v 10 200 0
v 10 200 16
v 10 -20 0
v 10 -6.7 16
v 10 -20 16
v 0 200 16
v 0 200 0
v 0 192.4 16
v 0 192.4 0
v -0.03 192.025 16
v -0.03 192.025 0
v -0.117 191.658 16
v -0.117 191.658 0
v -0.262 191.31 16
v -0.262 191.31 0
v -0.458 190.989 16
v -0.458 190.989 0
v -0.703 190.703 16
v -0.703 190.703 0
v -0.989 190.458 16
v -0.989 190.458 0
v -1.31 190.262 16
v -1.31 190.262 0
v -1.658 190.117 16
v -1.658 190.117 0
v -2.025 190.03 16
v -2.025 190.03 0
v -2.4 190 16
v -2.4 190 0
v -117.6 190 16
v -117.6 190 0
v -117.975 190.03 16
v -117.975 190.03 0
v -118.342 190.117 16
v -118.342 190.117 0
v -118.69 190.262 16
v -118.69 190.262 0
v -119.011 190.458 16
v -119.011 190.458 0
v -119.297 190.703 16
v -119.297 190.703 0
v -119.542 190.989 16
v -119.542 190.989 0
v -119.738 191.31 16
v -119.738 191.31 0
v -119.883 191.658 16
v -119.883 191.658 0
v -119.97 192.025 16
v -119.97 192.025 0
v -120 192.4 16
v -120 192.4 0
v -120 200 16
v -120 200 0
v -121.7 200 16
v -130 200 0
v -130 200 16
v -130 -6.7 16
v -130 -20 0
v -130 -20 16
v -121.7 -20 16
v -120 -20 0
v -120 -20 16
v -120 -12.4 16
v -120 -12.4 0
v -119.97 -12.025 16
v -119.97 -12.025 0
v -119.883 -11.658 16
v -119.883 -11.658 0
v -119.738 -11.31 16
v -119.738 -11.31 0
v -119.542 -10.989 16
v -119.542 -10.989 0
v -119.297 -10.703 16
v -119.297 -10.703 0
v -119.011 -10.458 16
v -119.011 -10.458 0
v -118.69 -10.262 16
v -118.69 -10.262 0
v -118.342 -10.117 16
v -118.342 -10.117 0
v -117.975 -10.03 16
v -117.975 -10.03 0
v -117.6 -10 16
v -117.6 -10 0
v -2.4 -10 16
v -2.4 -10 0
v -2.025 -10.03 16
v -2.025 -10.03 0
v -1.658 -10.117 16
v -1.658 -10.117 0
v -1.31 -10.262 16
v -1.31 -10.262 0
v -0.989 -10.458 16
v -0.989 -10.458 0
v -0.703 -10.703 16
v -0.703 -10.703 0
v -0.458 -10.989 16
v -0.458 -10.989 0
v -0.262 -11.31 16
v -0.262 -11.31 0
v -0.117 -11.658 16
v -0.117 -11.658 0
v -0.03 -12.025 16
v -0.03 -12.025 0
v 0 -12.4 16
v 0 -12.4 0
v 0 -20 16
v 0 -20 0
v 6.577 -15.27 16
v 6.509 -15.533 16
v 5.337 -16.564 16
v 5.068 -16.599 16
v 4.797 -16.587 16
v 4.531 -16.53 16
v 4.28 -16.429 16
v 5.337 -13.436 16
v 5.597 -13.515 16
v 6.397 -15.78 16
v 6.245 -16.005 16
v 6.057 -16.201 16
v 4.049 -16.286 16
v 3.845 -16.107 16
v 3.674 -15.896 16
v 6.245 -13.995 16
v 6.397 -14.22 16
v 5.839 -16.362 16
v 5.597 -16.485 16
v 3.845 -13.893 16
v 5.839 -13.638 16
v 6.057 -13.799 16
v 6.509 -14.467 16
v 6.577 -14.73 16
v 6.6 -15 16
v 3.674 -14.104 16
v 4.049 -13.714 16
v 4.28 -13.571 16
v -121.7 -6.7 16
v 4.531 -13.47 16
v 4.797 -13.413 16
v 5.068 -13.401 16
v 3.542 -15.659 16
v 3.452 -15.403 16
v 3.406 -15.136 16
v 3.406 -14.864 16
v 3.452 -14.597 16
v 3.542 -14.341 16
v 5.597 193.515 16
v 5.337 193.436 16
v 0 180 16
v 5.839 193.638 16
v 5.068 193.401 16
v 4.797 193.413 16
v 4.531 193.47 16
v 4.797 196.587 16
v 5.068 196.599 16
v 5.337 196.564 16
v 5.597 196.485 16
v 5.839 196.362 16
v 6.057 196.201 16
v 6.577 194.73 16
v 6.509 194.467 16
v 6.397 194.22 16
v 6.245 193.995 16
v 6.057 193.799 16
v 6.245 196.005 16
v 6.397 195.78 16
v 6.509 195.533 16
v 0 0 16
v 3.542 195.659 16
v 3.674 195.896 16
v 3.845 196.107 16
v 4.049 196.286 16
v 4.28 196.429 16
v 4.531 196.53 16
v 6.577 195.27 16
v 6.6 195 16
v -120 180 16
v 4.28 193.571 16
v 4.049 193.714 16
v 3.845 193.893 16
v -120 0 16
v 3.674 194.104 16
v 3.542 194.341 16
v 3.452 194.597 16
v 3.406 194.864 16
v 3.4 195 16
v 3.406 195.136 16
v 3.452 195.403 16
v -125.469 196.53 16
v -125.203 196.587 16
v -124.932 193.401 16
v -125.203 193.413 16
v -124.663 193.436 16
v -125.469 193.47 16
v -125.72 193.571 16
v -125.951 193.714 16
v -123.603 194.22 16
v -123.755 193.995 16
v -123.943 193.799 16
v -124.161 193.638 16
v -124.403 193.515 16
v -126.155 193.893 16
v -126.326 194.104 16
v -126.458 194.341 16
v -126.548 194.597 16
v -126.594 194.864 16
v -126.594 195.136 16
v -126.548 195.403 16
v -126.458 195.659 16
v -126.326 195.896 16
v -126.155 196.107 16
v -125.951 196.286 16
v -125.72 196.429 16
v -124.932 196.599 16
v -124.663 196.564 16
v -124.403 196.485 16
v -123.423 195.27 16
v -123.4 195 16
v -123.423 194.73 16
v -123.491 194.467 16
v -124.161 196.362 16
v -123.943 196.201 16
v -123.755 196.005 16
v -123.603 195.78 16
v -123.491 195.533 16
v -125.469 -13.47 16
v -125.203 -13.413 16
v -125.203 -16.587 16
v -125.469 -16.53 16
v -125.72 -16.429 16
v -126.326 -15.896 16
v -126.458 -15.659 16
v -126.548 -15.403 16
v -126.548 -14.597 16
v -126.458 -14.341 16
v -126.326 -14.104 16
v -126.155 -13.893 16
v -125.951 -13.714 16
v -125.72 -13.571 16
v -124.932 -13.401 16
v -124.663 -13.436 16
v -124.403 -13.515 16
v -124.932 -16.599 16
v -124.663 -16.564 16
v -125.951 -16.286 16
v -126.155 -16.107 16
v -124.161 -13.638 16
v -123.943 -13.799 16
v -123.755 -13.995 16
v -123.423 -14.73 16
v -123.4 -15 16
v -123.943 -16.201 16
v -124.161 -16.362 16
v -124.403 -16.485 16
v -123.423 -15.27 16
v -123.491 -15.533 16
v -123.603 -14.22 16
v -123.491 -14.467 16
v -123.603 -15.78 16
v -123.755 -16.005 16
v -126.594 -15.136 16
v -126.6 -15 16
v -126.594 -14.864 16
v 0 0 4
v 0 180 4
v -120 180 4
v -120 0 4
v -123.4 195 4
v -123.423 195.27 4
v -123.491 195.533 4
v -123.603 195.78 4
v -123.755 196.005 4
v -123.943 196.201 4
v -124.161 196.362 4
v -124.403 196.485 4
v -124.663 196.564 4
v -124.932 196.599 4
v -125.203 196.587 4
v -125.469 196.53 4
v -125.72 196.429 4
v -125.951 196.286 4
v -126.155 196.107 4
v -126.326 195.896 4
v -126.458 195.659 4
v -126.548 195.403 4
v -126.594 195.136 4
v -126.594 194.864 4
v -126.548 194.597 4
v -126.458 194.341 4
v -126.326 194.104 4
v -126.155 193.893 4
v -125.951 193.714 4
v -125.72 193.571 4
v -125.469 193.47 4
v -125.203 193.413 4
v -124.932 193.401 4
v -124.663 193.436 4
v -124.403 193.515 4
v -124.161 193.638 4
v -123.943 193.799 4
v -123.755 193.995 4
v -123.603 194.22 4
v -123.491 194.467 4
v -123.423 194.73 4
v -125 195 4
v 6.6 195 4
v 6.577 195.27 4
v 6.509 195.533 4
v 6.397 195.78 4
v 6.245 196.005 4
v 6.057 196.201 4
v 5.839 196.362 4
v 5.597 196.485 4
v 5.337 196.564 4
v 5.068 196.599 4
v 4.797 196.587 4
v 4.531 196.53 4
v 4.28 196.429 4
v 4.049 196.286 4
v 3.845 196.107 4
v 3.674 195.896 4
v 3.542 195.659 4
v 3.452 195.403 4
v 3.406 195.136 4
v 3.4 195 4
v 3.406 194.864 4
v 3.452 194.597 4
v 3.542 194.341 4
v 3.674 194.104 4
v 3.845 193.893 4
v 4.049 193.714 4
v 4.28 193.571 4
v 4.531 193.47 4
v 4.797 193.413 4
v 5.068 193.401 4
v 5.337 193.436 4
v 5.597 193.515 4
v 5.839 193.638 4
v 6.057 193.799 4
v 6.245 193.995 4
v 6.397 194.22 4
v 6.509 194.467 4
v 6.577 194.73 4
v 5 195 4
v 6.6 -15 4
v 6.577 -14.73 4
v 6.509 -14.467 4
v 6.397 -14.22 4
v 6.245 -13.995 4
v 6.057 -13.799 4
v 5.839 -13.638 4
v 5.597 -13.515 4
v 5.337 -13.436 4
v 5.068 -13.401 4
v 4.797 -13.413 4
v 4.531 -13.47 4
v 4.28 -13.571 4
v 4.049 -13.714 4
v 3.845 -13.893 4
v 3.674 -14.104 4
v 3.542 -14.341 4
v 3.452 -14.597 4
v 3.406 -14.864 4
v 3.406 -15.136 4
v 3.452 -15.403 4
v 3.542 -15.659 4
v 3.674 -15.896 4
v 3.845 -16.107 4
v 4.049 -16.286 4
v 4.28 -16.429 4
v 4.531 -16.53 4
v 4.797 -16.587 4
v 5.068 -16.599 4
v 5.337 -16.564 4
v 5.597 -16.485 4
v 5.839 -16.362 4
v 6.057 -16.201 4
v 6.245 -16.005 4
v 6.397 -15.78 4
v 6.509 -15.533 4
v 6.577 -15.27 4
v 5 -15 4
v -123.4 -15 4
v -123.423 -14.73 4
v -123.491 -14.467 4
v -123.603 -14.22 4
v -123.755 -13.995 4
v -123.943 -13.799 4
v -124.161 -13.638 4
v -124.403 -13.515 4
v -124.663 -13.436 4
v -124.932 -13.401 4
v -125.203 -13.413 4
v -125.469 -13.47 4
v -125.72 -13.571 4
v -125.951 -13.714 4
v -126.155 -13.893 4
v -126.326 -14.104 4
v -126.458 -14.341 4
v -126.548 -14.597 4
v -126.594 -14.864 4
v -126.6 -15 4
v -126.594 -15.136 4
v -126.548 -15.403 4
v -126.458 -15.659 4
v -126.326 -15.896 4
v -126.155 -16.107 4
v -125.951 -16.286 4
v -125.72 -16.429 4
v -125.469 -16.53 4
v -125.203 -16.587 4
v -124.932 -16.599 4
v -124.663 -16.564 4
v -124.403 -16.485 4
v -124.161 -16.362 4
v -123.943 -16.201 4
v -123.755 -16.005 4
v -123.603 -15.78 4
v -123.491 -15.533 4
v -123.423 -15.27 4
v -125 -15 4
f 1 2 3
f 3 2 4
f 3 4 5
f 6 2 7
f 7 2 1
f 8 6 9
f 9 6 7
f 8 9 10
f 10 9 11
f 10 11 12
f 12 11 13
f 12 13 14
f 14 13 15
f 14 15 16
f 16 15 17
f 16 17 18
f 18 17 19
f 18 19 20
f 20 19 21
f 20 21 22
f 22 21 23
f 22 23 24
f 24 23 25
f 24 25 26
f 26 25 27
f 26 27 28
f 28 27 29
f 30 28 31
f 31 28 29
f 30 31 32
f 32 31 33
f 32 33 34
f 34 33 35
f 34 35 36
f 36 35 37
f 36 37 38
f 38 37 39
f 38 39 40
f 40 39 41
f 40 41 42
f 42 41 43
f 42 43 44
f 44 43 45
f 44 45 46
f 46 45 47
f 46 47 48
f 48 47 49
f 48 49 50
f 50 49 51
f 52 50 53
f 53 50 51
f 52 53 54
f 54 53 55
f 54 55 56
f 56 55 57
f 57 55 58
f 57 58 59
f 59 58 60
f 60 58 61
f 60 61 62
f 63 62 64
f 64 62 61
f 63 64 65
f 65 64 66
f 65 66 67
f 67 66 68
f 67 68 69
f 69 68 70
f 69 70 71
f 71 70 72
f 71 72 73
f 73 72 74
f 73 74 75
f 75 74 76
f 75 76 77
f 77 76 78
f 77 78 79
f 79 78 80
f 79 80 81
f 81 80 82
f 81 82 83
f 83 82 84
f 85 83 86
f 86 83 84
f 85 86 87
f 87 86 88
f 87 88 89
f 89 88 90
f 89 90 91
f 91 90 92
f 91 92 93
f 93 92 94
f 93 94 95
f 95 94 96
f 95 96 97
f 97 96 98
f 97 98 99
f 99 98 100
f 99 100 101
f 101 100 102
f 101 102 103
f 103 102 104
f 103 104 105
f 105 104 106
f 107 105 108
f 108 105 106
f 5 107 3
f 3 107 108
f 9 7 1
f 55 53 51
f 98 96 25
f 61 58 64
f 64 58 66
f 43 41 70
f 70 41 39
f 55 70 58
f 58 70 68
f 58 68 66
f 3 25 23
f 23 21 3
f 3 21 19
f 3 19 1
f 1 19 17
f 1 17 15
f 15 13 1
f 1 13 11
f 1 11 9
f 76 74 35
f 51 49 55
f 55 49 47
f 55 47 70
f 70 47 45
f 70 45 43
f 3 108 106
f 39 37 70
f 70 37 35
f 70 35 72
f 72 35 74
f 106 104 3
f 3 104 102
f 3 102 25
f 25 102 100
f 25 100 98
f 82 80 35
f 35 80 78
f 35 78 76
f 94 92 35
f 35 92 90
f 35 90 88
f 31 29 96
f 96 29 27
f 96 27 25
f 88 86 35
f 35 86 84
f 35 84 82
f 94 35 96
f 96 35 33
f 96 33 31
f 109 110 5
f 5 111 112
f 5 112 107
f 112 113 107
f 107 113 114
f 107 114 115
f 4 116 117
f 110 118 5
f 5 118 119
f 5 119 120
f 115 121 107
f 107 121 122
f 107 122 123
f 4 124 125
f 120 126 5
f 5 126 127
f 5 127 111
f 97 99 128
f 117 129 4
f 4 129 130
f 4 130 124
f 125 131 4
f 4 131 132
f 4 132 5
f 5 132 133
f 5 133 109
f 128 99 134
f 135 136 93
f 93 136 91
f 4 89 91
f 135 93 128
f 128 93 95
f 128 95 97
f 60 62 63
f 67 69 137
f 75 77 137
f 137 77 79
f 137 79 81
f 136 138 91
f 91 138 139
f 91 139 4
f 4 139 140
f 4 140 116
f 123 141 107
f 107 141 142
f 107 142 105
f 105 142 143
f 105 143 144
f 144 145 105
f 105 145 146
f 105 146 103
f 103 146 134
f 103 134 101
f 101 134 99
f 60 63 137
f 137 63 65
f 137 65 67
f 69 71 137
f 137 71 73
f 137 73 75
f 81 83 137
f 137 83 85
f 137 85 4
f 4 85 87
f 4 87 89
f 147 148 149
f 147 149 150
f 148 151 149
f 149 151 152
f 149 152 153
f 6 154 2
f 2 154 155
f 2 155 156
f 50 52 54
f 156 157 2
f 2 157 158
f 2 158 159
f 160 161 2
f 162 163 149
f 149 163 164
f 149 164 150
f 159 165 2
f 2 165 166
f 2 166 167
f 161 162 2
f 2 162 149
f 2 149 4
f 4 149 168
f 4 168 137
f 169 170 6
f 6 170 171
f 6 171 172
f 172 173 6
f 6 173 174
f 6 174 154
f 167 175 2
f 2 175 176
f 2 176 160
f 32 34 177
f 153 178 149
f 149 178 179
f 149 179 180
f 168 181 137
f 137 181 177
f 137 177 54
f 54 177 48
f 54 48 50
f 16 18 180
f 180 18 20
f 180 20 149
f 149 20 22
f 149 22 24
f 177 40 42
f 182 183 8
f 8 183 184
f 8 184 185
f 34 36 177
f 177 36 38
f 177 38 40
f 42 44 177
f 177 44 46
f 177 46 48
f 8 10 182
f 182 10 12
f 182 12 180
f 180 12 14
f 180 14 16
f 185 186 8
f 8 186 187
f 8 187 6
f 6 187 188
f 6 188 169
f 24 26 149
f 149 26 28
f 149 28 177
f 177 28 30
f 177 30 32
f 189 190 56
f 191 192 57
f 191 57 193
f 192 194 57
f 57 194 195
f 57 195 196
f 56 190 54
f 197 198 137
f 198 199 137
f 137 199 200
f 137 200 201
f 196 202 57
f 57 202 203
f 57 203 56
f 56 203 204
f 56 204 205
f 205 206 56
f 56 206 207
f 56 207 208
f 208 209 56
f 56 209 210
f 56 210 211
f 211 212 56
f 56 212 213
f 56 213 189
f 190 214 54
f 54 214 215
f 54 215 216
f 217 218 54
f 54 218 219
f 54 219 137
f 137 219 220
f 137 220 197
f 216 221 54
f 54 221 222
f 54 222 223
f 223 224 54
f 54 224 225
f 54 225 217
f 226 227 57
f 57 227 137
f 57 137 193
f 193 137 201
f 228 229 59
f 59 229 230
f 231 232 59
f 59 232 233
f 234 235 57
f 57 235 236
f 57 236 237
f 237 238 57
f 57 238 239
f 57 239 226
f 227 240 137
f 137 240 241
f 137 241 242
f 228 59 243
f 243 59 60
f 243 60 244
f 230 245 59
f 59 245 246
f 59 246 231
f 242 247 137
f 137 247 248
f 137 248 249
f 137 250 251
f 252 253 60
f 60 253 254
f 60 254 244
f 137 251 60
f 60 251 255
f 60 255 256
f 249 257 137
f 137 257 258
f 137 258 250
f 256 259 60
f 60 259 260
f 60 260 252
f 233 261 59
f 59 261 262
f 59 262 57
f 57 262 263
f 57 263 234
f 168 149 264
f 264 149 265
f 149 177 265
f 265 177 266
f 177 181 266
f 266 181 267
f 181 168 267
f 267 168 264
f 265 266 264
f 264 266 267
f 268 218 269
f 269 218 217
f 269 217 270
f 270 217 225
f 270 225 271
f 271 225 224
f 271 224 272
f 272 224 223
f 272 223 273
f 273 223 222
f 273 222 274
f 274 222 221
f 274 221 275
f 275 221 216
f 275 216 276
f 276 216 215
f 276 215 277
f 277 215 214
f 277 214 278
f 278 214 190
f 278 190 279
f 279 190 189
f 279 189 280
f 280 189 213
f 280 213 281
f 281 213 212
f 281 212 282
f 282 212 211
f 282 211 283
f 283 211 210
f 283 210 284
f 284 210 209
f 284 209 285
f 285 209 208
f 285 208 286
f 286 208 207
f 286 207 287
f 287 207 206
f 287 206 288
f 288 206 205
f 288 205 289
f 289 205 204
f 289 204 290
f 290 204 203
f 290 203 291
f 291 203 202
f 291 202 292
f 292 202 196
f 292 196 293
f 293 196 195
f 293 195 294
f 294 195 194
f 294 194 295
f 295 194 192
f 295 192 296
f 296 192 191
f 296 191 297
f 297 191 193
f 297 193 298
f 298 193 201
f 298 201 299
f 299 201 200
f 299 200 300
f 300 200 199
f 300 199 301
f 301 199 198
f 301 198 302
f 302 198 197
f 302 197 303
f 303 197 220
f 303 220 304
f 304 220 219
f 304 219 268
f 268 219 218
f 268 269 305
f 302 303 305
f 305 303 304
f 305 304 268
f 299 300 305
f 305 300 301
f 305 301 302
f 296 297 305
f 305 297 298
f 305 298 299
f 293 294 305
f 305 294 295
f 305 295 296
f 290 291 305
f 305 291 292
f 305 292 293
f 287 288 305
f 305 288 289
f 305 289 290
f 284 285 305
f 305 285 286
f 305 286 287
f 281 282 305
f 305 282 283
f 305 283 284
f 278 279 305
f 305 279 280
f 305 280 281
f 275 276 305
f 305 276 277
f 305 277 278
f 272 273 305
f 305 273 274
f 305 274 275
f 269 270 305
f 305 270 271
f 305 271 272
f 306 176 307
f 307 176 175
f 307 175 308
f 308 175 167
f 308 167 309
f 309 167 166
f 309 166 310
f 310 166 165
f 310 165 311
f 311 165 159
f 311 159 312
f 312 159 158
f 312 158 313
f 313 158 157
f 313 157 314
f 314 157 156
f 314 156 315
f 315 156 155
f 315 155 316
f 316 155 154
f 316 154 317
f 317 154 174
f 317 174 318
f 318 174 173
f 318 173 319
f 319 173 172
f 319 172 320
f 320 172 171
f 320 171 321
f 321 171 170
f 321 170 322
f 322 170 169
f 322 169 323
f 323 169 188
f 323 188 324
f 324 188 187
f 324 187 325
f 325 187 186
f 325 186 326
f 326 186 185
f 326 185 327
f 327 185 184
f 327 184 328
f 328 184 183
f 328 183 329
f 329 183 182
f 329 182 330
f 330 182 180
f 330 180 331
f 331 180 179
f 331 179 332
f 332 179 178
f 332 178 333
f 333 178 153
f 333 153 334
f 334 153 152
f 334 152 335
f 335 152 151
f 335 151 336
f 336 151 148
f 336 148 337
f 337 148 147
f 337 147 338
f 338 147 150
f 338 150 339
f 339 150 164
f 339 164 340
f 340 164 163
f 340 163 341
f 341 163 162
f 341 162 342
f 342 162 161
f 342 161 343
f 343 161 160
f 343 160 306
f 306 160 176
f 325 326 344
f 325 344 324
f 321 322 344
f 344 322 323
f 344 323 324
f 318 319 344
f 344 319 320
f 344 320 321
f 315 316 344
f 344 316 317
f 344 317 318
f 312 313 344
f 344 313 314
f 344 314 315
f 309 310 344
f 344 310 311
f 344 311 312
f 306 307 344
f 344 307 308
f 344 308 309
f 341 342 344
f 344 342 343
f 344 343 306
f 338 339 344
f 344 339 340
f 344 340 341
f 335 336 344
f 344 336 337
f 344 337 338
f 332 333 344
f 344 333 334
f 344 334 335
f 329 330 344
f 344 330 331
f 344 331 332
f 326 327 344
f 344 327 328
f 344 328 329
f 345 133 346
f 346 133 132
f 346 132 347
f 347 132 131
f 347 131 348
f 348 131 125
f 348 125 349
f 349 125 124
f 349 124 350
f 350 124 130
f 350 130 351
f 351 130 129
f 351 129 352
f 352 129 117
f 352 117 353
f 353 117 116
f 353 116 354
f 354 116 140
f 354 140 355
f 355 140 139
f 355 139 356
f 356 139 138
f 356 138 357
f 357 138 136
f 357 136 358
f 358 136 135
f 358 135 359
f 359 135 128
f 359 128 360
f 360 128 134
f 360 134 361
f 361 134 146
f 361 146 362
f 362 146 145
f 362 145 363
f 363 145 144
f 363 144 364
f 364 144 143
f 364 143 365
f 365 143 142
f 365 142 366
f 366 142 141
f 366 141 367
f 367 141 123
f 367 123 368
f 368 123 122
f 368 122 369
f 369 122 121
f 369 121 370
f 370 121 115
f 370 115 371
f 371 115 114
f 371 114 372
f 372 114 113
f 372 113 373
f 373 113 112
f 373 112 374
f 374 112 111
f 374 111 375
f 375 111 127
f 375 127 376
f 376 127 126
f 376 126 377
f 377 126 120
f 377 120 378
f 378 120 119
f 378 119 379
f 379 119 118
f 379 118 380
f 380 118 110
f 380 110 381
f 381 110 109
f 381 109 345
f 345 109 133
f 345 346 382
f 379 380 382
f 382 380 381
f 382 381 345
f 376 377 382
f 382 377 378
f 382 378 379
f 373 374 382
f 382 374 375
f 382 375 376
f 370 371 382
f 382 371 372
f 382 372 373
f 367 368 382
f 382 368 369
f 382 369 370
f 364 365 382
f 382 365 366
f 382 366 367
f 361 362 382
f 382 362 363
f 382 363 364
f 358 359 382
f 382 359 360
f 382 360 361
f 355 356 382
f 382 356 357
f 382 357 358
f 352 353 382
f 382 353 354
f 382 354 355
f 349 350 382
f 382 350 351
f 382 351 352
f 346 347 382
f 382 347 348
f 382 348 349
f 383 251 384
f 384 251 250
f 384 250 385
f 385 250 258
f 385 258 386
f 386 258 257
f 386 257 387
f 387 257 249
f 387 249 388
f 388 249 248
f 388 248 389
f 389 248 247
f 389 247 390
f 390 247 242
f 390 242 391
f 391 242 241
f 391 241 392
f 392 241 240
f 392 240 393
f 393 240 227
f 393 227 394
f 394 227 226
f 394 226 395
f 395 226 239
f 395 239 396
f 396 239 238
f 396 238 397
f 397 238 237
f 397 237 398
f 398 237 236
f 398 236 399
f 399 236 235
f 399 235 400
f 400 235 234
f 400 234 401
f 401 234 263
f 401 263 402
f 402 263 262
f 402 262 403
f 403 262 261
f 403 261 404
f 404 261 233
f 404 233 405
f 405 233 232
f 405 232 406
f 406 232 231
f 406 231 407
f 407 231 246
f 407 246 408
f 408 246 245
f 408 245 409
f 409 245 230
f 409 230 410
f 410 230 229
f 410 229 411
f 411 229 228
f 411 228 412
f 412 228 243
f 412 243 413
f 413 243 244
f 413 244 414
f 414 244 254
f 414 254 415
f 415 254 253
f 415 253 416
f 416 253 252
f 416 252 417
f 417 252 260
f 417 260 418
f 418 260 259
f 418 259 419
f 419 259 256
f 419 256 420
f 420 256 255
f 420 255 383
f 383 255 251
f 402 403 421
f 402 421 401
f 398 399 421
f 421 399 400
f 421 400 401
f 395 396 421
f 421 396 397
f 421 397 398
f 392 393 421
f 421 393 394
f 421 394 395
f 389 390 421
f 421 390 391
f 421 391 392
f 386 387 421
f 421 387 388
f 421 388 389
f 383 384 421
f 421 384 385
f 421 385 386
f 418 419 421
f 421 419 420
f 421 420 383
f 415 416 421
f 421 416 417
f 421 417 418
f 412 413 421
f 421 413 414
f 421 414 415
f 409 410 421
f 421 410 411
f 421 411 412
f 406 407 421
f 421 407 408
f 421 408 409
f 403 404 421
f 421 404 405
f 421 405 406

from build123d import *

# Parameters (mm, degrees)
BOSS_EXTRUDE1_DEPTH = 4
SKETCH2_W           = 120
SKETCH2_H           = 180
BOSS_EXTRUDE2_DEPTH = 12
SKETCH3_R           = 1.6
CUT_EXTRUDE1_DEPTH  = 12


with BuildPart() as part:
    # Sketch1 → Boss-Extrude1 (new body)
    with BuildSketch(Plane(origin=(0, 0, 0), x_dir=(0, 1, 0), z_dir=(0, 0, 1))):
        with BuildLine():
            Line((-10, 2.4), (-10, 117.6))
            ThreePointArc((-10, 117.6), (-10.702943725, 119.297056275), (-12.4, 120))
            Line((-12.4, 120), (-20, 120))
            Line((-20, 120), (-20, 130))
            Line((-20, 130), (-10, 130))
            Line((-10, 130), (190, 130))
            Line((190, 130), (200, 130))
            Line((200, 130), (200, 120))
            Line((200, 120), (192.4, 120))
            ThreePointArc((192.4, 120), (190.702943725, 119.297056275), (190, 117.6))
            Line((190, 117.6), (190, 2.4))
            ThreePointArc((190, 2.4), (190.702943725, 0.702943725), (192.4, 0))
            Line((192.4, 0), (200, 0))
            Line((200, 0), (200, -10))
            Line((200, -10), (190, -10))
            Line((190, -10), (-10, -10))
            Line((-10, -10), (-20, -10))
            Line((-20, -10), (-20, 0))
            Line((-20, 0), (-12.4, 0))
            ThreePointArc((-12.4, 0), (-10.702943725, 0.702943725), (-10, 2.4))
        make_face()
    extrude(amount=BOSS_EXTRUDE1_DEPTH)

    # Sketch2 → Boss-Extrude2 (add)
    with BuildSketch(Plane.XY.offset(4)):
        with BuildLine():
            Line((10, -20), (10, 200))
            Line((10, 200), (0, 200))
            Line((0, 200), (0, 192.4))
            ThreePointArc((0, 192.4), (-0.702943725, 190.702943725), (-2.4, 190))
            Line((-2.4, 190), (-117.6, 190))
            ThreePointArc((-117.6, 190), (-119.297056275, 190.702943725), (-120, 192.4))
            Line((-120, 192.4), (-120, 200))
            Line((-120, 200), (-130, 200))
            Line((-130, 200), (-130, -20))
            Line((-130, -20), (-120, -20))
            Line((-120, -20), (-120, -12.4))
            ThreePointArc((-120, -12.4), (-119.297056275, -10.702943725), (-117.6, -10))
            Line((-117.6, -10), (-2.4, -10))
            ThreePointArc((-2.4, -10), (-0.702943725, -10.702943725), (0, -12.4))
            Line((0, -12.4), (0, -20))
            Line((0, -20), (10, -20))
        make_face()
        with Locations((-60, 90)):
            Rectangle(SKETCH2_W, SKETCH2_H, mode=Mode.SUBTRACT)
    extrude(amount=BOSS_EXTRUDE2_DEPTH)

    # Sketch3 → Cut-Extrude1 (cut)
    with BuildSketch(Plane.XY.offset(16)):
        with Locations((-125, 195)):
            Circle(SKETCH3_R)
        with Locations((5, 195)):
            Circle(SKETCH3_R)
        with Locations((5, -15)):
            Circle(SKETCH3_R)
        with Locations((-125, -15)):
            Circle(SKETCH3_R)
    extrude(amount=-CUT_EXTRUDE1_DEPTH, mode=Mode.SUBTRACT)


solid = part.part
